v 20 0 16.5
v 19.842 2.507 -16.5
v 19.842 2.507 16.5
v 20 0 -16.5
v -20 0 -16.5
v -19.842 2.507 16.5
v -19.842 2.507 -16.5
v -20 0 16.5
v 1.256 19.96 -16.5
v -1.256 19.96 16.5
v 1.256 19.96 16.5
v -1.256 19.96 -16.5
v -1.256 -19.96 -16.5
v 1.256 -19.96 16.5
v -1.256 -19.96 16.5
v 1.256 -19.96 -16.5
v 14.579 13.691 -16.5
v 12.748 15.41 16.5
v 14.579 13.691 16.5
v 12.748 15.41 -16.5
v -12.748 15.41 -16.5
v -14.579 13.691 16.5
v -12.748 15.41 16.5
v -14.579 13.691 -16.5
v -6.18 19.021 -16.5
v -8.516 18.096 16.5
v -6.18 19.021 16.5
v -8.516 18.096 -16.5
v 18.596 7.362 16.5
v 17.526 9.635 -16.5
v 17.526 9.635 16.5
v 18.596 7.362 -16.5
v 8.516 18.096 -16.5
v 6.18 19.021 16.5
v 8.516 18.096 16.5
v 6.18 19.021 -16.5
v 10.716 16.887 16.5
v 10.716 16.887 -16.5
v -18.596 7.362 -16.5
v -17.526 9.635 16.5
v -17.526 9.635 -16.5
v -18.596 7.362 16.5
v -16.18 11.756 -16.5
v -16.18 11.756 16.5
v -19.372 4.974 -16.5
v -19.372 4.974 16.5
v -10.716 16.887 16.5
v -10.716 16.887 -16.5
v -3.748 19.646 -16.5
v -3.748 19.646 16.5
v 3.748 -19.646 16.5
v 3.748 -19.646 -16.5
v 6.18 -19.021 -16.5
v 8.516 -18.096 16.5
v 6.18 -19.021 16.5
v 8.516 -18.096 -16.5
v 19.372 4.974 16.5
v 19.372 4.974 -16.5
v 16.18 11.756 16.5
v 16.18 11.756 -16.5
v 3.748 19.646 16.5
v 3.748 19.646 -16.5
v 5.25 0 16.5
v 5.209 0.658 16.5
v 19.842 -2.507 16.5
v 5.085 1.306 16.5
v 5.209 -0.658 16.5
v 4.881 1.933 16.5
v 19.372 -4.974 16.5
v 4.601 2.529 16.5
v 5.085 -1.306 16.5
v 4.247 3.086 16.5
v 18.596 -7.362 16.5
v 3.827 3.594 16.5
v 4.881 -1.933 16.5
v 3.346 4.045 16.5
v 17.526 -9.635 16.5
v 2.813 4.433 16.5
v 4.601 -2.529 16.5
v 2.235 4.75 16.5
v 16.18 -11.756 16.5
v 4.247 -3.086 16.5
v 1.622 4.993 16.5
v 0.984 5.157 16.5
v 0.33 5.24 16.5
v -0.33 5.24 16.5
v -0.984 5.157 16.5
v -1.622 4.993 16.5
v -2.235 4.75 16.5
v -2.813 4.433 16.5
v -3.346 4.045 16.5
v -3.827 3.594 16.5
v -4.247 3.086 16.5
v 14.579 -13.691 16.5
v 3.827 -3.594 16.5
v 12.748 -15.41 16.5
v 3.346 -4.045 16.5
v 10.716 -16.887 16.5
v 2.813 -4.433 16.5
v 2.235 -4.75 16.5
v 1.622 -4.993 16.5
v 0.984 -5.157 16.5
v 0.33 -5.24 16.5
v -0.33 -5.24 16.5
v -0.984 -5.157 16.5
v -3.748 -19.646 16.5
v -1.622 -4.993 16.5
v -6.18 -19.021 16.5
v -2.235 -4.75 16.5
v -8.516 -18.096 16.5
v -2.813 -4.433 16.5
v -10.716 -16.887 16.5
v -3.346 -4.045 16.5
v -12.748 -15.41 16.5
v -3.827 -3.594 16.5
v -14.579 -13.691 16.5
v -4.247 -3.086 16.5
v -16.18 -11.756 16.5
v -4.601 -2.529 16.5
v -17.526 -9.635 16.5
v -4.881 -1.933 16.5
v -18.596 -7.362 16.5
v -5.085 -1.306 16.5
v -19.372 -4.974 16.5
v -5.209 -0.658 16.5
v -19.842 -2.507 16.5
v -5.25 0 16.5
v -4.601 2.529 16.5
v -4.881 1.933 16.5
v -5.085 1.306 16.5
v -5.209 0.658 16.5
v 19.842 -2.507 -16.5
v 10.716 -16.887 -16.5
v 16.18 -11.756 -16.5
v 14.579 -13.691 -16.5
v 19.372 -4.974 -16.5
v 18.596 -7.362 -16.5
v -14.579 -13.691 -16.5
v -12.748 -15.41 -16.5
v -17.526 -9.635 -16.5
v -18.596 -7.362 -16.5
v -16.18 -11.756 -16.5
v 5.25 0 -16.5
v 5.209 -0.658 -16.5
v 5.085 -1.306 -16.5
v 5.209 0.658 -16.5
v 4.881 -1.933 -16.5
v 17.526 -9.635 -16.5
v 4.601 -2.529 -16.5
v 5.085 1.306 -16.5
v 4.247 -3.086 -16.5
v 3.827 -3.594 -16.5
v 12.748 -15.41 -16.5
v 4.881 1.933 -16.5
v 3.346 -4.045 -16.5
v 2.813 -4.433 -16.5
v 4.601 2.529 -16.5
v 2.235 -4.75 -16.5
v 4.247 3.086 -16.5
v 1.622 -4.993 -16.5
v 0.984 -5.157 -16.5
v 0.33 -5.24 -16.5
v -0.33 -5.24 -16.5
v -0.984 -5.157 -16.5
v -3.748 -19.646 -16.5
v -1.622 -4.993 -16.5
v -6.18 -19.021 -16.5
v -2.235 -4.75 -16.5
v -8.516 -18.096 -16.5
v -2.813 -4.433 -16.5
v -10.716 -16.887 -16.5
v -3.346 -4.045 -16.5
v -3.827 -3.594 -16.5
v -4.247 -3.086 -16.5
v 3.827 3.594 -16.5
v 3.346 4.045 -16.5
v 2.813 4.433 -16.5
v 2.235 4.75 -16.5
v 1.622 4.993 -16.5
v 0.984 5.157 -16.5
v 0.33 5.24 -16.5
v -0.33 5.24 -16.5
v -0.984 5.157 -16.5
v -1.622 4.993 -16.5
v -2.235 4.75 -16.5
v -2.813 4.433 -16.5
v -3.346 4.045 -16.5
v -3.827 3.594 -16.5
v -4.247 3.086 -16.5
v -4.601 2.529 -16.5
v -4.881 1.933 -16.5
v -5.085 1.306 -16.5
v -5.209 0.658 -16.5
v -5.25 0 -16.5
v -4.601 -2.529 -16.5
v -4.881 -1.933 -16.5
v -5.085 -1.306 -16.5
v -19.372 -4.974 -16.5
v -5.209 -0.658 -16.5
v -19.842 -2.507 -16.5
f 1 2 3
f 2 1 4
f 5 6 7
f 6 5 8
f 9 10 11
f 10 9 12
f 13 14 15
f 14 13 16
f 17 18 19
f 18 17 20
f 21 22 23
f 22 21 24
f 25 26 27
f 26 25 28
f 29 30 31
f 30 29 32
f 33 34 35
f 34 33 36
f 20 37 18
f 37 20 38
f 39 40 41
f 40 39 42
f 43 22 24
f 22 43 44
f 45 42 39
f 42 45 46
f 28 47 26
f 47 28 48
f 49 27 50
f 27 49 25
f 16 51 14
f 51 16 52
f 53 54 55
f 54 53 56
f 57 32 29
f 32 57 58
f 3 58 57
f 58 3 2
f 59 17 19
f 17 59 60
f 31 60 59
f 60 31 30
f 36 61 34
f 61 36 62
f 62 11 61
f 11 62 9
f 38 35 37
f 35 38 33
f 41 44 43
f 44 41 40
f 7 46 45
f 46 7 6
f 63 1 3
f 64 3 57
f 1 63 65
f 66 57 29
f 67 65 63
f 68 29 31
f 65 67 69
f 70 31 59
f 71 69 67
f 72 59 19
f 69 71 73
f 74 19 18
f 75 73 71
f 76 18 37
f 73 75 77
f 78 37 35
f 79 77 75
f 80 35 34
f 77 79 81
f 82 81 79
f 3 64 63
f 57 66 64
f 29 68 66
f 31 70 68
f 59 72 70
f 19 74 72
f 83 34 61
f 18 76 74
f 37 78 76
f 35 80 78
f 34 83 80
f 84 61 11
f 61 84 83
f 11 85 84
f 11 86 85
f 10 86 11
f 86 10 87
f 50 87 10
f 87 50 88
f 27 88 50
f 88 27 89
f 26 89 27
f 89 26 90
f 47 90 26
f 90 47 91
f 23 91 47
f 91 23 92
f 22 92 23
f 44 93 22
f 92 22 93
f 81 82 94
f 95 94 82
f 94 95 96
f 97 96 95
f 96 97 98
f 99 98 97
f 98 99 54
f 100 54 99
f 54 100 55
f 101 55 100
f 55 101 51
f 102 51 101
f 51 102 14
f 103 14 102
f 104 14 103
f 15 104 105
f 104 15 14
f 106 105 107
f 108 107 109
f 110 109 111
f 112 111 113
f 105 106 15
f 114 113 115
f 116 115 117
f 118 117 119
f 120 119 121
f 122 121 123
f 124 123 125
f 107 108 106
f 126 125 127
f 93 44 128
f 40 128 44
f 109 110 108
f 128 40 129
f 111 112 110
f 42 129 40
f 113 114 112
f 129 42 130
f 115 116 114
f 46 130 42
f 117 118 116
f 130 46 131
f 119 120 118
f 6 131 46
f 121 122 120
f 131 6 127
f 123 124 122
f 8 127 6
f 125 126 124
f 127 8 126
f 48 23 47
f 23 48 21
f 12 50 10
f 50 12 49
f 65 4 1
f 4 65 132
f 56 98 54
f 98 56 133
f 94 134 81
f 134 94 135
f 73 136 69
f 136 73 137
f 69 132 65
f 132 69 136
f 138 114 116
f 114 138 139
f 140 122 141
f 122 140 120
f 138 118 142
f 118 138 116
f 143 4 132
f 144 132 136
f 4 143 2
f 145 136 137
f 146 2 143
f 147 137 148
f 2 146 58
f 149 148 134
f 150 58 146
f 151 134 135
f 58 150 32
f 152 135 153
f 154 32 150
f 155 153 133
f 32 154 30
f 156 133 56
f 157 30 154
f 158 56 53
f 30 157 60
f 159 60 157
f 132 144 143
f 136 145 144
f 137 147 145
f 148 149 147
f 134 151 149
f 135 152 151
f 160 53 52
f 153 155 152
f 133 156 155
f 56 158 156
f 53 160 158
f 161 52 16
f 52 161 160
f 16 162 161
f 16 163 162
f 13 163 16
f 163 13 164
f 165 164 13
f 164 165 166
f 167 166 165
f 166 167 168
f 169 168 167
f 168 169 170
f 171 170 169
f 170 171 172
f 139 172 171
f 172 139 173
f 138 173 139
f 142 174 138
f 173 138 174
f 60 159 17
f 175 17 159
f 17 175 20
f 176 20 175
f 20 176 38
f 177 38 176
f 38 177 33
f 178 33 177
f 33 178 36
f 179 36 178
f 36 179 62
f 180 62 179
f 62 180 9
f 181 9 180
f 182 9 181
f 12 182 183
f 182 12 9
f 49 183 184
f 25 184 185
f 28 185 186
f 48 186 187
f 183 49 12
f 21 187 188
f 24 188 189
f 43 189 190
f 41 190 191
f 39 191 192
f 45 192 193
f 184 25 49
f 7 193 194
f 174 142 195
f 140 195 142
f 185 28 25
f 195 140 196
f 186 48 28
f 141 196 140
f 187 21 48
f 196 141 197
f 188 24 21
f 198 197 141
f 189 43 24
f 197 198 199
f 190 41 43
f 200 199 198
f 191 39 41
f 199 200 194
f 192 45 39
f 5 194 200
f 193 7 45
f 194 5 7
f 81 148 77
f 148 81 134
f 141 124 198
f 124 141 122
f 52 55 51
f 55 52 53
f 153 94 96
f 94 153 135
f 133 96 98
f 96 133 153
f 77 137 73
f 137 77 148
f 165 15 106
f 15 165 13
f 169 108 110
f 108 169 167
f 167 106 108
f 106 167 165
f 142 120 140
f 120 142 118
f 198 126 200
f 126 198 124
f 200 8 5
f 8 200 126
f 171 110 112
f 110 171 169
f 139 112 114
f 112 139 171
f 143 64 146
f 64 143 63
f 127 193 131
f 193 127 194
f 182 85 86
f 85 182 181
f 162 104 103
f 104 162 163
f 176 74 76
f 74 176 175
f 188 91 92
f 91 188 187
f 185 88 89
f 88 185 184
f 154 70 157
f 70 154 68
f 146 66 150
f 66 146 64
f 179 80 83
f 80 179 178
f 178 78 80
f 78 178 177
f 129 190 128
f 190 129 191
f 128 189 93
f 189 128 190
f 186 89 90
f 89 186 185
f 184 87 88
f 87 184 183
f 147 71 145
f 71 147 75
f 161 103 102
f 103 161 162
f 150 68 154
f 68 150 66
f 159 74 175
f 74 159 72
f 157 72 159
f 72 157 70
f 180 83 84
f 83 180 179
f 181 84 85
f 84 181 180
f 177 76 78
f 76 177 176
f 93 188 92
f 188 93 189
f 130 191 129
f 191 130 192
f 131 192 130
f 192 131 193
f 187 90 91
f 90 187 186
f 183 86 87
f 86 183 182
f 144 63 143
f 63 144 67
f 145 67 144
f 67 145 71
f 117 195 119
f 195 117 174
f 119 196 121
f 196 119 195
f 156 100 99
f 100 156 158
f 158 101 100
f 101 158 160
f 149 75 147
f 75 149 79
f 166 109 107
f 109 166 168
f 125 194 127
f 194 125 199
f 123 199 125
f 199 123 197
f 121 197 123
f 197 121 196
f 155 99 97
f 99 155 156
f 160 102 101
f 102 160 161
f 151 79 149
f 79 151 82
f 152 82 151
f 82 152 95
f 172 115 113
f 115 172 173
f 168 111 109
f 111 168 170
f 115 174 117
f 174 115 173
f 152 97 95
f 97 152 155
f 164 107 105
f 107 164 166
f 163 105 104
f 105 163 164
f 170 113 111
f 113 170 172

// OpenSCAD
$fn = 50;


difference() {
	union() {
		translate(v = [0, 0, -16.5000000000]) {
			cylinder(h = 33, r = 20.0000000000);
		}
	}
	union() {
		translate(v = [0, 0, -100.0000000000]) {
			cylinder(h = 200, r = 5.2500000000);
		}
	}
}
